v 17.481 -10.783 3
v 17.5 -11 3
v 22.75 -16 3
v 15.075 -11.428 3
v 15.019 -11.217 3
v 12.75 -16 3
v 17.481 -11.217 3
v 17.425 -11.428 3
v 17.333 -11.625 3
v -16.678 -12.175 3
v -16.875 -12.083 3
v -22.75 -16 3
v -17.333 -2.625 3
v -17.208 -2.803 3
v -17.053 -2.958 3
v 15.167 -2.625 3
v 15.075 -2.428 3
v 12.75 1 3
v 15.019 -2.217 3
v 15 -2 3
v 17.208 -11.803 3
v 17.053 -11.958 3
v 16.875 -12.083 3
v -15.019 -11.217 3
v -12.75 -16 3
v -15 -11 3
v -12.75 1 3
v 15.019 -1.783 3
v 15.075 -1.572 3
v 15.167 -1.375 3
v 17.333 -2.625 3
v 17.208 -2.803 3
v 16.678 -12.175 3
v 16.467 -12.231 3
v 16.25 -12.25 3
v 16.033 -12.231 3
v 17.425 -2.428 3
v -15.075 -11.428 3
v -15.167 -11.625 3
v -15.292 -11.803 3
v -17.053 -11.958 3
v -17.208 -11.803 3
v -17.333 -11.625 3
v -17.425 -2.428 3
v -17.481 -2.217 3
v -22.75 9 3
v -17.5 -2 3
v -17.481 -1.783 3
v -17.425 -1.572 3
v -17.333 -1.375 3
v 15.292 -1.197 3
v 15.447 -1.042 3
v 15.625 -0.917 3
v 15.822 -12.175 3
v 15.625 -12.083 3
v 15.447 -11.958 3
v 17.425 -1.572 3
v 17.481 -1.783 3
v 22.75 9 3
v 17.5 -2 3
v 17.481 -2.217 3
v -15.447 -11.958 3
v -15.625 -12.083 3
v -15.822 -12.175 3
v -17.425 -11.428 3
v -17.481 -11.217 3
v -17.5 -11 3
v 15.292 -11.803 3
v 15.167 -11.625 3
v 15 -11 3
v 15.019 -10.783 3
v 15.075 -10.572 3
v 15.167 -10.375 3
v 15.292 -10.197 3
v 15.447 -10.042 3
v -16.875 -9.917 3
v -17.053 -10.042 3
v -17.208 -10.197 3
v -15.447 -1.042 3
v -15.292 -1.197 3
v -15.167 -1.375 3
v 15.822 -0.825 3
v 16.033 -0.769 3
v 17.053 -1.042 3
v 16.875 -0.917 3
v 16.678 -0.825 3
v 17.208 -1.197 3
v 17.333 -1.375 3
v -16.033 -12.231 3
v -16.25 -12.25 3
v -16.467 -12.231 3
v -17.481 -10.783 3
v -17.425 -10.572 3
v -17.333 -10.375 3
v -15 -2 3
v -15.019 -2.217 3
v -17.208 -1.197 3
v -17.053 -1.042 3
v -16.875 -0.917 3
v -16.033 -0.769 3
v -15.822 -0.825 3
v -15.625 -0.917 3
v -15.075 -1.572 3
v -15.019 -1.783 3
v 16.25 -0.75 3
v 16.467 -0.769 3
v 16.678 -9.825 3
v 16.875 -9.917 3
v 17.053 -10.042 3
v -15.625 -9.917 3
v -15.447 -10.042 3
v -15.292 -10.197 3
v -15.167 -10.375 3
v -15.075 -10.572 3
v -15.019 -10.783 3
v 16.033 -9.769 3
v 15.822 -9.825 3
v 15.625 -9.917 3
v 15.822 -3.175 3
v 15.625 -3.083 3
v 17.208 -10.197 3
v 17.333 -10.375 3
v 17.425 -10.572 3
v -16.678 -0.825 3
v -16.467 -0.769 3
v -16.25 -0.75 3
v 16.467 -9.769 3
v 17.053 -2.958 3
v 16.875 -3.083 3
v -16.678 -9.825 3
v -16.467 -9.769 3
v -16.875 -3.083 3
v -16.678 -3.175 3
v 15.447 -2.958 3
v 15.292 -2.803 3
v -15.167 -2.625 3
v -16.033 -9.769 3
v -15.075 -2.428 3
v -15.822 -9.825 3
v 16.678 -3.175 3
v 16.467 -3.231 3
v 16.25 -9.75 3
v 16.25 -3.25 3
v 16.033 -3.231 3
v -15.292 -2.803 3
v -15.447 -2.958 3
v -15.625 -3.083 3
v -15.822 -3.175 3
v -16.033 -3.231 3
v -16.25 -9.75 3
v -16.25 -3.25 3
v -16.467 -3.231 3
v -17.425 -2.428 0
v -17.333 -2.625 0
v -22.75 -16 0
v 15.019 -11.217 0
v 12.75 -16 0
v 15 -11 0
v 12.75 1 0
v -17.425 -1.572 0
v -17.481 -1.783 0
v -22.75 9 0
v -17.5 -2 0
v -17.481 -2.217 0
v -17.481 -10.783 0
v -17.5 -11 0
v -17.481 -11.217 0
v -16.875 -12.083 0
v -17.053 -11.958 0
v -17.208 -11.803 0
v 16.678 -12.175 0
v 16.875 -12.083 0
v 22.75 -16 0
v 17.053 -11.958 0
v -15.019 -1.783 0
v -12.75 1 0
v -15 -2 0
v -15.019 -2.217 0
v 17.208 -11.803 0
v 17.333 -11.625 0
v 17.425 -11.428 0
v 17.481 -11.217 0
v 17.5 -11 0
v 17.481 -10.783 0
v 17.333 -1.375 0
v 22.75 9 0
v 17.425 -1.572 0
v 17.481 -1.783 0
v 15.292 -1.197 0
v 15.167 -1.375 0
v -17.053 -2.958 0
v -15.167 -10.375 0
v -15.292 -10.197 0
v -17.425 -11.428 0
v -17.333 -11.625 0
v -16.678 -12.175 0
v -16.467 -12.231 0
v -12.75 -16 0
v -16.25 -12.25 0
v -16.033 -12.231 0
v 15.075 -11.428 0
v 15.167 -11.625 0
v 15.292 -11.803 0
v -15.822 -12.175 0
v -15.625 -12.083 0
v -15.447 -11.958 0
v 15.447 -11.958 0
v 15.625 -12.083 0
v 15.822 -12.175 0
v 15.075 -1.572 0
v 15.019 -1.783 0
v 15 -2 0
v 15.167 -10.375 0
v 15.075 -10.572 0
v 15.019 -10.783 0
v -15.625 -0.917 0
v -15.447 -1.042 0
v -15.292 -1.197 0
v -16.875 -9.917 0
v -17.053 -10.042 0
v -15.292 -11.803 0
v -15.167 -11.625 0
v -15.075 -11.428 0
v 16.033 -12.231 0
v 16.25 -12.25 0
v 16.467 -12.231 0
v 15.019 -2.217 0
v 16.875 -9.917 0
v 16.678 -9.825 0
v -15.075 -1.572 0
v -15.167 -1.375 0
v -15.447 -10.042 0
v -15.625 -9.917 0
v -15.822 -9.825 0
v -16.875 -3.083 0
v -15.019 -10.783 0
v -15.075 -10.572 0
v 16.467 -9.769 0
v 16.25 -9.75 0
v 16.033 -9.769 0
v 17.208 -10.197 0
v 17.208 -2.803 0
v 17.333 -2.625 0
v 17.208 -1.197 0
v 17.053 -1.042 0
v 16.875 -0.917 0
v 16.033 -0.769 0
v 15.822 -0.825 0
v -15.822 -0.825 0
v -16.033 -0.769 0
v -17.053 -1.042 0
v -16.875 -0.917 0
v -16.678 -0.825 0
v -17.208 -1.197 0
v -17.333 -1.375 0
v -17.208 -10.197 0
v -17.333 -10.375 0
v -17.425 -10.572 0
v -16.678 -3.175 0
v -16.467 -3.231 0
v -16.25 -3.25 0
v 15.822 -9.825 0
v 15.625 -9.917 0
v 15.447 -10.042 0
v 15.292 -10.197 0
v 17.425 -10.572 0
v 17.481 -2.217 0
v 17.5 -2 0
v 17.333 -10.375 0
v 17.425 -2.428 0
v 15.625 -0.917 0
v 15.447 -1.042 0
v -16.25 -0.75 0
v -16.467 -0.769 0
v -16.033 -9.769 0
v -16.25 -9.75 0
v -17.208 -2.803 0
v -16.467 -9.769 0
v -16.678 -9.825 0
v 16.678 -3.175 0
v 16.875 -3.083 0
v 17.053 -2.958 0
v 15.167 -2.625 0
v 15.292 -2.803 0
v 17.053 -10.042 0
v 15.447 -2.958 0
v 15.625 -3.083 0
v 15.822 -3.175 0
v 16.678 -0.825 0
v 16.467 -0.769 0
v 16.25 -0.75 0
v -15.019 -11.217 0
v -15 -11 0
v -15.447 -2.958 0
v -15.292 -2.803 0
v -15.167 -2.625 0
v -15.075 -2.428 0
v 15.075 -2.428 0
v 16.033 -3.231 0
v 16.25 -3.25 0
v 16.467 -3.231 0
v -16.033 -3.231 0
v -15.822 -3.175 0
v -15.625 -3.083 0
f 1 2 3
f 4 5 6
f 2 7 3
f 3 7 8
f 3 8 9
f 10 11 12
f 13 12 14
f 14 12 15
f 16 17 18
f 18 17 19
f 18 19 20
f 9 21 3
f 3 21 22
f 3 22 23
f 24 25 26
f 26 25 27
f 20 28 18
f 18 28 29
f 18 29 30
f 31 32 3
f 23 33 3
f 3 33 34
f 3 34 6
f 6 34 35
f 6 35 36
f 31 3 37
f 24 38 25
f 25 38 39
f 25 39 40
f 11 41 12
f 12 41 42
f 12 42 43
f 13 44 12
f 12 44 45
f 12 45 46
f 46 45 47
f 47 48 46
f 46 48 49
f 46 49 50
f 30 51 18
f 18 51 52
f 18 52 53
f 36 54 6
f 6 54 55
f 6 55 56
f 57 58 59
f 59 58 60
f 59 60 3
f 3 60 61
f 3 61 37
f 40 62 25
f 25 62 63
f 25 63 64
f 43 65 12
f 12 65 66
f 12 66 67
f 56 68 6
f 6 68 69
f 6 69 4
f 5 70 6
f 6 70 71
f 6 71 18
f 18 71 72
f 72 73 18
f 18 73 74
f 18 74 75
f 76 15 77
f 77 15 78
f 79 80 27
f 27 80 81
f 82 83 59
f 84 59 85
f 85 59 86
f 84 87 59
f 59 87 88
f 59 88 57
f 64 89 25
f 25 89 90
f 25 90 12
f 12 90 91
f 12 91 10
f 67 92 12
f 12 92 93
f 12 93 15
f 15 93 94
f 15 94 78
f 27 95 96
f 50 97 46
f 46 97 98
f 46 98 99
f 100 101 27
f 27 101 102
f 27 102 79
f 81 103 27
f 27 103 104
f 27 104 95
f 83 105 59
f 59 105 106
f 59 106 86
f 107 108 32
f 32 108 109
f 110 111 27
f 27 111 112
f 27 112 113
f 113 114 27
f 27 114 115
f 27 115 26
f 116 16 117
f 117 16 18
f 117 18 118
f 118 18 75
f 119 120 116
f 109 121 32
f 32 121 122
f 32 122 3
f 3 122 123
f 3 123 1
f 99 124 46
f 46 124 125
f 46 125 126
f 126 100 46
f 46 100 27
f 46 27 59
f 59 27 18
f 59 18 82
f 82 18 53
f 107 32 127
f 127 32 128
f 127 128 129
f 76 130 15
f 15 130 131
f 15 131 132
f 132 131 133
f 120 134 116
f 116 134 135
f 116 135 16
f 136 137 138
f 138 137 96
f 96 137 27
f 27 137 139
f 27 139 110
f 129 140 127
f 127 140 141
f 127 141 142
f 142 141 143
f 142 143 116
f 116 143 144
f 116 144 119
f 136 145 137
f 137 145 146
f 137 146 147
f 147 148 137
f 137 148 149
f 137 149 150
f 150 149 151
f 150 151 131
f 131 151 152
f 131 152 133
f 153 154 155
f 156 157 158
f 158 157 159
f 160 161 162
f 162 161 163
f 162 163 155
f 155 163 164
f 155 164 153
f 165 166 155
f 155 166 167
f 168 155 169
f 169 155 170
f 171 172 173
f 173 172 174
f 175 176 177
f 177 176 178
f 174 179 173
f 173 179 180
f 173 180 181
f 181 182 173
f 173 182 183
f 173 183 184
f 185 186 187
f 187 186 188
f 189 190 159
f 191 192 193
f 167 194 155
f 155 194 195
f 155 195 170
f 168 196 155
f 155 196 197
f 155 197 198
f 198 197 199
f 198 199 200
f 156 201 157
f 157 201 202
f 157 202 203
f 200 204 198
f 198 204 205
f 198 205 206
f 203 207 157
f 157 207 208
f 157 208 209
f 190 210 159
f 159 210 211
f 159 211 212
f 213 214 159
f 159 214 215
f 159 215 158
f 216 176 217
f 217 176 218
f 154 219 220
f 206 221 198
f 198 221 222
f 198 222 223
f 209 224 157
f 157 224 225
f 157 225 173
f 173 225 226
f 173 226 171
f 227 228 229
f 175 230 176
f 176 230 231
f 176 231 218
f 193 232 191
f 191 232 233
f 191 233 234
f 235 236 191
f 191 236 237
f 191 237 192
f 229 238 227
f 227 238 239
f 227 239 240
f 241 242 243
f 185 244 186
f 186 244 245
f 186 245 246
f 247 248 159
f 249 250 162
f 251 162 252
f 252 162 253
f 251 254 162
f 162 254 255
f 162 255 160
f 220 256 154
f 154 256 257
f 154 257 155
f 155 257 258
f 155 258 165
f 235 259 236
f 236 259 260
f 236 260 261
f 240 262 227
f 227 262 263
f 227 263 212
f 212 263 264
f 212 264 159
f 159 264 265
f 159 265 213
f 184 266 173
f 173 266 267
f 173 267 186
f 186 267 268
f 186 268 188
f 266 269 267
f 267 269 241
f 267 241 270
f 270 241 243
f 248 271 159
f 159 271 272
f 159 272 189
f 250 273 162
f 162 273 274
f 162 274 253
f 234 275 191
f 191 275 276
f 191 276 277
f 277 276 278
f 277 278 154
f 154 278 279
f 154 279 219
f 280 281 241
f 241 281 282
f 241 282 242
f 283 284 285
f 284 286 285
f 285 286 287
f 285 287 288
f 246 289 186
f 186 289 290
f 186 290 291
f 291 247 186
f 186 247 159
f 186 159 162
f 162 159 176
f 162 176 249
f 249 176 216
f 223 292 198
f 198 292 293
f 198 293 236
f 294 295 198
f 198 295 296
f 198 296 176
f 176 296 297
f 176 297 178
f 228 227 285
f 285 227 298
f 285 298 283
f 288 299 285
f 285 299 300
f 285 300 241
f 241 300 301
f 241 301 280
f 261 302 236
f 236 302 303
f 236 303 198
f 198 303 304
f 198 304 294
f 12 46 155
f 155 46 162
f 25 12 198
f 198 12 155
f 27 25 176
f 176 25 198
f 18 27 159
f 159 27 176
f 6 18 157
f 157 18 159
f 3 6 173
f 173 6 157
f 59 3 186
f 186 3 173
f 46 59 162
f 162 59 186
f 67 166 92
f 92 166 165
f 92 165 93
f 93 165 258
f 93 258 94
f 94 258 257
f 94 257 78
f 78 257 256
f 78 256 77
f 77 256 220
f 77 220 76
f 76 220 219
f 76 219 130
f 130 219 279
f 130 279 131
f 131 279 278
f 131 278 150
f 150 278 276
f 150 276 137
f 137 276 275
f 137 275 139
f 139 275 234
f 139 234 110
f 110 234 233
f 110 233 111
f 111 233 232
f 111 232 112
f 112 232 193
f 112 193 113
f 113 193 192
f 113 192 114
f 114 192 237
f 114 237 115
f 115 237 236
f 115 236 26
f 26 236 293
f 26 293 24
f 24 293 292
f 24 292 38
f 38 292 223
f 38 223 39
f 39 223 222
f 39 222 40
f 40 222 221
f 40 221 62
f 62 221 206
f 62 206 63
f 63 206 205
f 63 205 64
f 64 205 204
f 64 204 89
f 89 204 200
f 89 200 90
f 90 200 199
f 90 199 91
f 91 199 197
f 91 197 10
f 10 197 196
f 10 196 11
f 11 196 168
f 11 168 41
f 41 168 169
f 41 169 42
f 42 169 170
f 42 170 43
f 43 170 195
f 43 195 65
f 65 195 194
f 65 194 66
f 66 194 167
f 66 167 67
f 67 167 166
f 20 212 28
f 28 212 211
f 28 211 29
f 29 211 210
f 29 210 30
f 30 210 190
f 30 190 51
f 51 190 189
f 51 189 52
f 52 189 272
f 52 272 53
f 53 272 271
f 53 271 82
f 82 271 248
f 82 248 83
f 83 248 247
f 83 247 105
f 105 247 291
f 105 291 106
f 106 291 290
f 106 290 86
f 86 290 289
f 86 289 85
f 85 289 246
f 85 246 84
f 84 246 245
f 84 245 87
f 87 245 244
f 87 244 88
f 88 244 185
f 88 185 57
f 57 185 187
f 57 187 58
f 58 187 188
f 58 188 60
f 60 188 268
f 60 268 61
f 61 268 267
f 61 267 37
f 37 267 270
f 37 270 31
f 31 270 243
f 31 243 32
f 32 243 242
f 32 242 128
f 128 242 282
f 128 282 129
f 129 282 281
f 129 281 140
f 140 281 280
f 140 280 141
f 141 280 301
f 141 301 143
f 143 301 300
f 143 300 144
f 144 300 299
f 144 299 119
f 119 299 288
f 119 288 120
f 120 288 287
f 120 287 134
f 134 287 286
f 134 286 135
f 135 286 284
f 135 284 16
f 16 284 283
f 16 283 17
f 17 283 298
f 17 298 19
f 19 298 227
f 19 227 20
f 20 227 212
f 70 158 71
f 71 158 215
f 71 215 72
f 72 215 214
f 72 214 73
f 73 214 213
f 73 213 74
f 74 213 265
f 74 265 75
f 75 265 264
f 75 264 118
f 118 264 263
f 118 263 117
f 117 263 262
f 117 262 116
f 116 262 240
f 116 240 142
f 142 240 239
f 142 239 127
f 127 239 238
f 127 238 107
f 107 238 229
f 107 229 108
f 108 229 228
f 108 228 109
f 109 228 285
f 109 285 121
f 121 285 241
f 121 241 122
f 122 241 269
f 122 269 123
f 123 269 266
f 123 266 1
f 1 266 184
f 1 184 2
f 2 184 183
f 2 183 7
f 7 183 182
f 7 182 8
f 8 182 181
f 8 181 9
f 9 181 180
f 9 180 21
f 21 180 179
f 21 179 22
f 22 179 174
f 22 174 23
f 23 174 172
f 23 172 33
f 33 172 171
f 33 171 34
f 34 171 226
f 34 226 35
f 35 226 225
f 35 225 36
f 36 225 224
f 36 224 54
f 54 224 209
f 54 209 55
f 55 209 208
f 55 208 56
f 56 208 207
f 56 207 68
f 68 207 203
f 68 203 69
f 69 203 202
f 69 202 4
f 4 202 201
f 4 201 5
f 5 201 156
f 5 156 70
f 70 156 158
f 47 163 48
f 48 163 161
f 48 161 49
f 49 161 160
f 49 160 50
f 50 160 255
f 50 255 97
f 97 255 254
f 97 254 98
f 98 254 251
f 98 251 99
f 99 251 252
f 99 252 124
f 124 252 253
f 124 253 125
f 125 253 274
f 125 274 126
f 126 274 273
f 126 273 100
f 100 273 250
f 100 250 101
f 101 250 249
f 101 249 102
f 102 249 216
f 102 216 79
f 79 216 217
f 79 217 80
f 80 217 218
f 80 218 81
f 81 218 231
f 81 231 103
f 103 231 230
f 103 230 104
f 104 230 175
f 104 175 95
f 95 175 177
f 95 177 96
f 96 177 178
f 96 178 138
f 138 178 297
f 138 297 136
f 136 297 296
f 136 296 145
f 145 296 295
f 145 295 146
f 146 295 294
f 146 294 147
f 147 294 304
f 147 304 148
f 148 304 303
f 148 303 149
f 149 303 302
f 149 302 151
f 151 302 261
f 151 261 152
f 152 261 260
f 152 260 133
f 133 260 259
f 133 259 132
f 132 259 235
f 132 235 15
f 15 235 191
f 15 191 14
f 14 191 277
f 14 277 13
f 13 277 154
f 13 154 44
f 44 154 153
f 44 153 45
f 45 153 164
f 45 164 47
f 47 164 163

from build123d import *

# Parameters (mm, degrees)
BOSS_EXTRUDE1_DEPTH = 3
SKETCH1_3_R         = 1.25
CUT_EXTRUDE1_DEPTH  = 3


with BuildPart() as part:
    # Sketch1 → Boss-Extrude1 (new body)
    with BuildSketch(Plane.XY):
        Polygon((-22.75, 9), (-12.75, 9), (12.75, 9), (22.75, 9), (22.75, -16), (12.75, -16), (12.75, 1), (-12.75, 1), (-12.75, -16), (-22.75, -16), align=None)
    extrude(amount=BOSS_EXTRUDE1_DEPTH)

    # Sketch1<3> → Cut-Extrude1 (cut)
    with BuildSketch(Plane.XY):
        with Locations((-16.25, -11)):
            Circle(SKETCH1_3_R)
        with Locations((16.25, -2)):
            Circle(SKETCH1_3_R)
        with Locations((16.25, -11)):
            Circle(SKETCH1_3_R)
        with Locations((-16.25, -2)):
            Circle(SKETCH1_3_R)
    extrude(amount=CUT_EXTRUDE1_DEPTH, mode=Mode.SUBTRACT)


solid = part.part
